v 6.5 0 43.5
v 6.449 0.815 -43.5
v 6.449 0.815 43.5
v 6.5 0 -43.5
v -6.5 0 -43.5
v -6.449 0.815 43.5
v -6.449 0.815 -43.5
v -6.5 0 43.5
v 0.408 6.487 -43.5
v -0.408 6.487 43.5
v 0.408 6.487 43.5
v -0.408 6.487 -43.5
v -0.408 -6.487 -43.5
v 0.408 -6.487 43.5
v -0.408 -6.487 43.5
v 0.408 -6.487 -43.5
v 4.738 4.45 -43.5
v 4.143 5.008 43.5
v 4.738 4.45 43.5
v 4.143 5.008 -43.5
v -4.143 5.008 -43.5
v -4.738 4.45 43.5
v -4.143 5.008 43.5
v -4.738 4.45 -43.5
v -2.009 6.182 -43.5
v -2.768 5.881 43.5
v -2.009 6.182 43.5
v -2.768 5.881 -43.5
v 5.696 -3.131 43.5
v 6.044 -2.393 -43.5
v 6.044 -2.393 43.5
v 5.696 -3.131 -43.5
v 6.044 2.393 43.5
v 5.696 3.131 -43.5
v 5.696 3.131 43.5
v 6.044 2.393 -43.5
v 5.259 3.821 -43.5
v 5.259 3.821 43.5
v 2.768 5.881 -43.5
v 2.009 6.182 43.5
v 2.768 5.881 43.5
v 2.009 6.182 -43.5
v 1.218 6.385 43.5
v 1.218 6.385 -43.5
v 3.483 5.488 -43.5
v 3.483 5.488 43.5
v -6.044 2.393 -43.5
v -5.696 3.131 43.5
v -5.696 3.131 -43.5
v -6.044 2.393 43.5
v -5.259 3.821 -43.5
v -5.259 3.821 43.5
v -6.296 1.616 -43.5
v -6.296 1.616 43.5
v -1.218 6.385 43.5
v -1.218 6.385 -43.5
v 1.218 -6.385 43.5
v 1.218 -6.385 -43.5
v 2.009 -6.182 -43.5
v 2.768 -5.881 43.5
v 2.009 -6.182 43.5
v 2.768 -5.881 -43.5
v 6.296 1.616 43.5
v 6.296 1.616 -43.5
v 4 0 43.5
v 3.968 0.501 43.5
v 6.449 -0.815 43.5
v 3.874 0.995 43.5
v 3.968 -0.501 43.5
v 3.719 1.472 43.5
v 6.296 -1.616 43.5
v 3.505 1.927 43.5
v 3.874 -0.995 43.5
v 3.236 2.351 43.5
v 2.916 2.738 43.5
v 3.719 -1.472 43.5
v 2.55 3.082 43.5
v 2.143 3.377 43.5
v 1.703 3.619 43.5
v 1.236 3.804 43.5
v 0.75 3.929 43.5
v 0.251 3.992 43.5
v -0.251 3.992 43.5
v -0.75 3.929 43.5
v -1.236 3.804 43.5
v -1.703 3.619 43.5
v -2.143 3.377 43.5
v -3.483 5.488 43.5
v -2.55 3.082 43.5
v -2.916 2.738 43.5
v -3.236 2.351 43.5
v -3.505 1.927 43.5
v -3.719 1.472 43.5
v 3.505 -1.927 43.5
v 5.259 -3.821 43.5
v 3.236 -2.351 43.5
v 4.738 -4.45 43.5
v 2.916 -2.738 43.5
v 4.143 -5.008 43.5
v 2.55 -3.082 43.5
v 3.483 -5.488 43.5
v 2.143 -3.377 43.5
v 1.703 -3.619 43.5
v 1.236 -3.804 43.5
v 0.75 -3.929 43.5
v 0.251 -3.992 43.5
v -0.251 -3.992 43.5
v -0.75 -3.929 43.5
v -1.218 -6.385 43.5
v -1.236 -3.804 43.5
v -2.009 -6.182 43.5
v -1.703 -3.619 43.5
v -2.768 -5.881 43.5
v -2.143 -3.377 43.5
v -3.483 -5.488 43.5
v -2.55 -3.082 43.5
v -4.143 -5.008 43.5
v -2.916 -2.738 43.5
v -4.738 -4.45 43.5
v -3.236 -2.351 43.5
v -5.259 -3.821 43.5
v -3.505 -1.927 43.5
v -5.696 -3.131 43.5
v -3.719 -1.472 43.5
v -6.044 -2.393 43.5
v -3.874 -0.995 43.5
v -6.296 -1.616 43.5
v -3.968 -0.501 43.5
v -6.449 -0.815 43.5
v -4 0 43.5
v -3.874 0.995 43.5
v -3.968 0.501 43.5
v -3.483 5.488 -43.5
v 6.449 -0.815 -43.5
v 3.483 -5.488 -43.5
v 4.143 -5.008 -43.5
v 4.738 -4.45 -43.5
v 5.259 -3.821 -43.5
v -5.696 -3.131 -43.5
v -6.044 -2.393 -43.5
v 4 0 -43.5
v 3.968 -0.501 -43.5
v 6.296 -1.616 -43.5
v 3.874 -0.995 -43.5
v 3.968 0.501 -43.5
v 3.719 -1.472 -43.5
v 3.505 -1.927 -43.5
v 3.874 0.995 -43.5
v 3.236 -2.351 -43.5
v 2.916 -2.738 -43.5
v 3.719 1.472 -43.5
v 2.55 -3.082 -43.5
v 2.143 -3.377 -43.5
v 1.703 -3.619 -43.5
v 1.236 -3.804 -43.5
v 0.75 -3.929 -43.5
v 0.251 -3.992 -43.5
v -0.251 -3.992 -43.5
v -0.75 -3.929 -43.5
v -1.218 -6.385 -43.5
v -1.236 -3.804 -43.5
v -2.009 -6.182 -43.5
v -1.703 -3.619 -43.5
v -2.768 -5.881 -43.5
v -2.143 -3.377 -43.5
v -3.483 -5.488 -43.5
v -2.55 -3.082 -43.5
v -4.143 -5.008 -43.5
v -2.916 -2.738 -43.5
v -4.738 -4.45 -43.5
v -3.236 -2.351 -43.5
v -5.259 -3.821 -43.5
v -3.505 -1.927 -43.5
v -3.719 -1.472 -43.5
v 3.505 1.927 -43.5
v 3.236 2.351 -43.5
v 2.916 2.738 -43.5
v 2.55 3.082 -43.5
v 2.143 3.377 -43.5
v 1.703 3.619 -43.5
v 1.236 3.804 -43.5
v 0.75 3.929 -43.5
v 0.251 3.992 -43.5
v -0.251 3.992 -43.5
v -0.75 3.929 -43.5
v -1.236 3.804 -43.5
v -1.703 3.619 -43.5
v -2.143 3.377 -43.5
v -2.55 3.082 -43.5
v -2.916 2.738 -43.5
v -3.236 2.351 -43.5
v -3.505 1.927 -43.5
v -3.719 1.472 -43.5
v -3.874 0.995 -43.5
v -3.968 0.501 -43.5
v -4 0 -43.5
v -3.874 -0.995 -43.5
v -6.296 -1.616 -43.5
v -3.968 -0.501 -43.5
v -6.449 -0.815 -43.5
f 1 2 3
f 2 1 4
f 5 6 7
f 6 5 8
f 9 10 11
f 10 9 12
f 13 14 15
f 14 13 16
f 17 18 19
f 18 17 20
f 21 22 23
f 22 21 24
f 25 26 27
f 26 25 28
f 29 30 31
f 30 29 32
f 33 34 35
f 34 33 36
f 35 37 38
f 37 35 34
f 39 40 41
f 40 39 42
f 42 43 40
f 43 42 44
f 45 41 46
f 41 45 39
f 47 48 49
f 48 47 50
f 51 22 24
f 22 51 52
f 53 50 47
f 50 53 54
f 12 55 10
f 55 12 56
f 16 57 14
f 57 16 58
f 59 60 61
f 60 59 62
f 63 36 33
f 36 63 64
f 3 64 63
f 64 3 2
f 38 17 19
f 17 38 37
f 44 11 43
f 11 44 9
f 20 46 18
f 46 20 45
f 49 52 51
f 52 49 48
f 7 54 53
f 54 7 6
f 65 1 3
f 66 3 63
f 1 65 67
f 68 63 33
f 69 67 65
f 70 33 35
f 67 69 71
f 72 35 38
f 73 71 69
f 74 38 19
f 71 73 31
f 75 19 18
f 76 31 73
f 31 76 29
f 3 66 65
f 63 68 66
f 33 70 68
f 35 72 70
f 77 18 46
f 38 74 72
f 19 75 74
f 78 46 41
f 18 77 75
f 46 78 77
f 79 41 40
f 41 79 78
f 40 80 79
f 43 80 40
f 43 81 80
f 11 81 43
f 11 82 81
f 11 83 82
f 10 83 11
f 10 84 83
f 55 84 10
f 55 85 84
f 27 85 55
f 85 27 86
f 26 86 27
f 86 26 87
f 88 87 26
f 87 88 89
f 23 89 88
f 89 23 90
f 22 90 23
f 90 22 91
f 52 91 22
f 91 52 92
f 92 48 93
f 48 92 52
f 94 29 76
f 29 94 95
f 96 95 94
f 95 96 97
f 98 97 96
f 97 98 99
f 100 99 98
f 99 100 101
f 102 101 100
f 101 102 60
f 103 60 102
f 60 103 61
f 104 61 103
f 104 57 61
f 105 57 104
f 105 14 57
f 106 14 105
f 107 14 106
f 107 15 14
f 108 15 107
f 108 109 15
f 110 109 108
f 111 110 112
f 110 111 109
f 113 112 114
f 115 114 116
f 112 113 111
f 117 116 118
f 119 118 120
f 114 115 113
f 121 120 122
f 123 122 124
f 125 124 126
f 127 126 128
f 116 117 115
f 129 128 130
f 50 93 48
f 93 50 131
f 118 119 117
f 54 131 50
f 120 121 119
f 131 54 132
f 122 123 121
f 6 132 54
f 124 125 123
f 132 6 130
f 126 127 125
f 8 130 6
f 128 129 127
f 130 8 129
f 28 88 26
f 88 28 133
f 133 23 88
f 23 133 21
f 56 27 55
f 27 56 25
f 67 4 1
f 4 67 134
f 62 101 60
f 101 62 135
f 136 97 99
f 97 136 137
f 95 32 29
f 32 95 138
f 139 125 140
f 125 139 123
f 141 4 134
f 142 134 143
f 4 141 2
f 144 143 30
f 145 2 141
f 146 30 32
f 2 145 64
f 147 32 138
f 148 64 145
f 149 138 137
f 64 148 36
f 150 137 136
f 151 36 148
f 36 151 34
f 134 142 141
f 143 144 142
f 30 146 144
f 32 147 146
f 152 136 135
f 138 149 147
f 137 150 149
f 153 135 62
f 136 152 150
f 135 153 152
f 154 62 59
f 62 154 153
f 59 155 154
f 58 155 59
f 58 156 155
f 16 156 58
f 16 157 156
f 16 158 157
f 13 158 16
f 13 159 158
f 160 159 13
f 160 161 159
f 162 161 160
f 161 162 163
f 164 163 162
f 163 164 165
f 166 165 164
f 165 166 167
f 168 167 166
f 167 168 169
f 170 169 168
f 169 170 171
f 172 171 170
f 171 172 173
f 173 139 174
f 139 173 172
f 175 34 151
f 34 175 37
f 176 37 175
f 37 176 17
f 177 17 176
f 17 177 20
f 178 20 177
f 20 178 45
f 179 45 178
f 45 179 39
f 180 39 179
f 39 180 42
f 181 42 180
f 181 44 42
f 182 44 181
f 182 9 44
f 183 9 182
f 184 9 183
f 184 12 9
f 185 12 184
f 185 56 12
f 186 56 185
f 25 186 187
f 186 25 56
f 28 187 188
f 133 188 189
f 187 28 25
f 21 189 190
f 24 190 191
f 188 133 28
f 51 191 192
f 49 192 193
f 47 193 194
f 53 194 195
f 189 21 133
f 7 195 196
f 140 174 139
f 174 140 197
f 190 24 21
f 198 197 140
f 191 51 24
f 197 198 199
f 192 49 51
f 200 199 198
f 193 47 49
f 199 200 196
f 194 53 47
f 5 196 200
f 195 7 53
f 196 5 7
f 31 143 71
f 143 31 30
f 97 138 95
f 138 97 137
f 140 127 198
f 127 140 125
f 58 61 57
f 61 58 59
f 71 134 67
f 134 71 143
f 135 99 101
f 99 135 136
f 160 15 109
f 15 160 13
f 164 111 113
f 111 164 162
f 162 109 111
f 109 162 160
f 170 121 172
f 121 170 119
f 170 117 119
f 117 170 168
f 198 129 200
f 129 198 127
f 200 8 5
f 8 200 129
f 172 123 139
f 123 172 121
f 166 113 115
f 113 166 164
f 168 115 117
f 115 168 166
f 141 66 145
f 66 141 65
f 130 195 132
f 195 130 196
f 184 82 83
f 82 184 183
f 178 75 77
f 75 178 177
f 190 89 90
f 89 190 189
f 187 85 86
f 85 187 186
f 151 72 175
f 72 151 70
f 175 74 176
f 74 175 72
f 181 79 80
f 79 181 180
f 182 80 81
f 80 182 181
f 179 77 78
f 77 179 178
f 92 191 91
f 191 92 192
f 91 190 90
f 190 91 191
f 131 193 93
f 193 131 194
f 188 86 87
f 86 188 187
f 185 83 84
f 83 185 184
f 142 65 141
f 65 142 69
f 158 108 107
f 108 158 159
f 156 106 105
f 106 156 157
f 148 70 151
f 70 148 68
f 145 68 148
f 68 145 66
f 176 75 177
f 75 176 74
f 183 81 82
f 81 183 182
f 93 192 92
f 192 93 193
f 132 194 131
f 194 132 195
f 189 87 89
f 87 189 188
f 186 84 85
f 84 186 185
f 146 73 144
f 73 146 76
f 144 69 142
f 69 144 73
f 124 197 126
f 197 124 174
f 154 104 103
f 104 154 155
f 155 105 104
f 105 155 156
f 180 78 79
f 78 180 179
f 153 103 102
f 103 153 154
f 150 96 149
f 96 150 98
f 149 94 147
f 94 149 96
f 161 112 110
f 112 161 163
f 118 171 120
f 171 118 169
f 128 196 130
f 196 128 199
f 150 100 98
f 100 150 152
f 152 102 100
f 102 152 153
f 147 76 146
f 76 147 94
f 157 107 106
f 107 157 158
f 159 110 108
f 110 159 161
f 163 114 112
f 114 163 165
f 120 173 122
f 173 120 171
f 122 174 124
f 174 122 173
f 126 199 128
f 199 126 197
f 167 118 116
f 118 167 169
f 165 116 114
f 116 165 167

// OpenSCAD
$fn = 50;


difference() {
	union() {
		translate(v = [0, 0, -43.5000000000]) {
			cylinder(h = 87, r = 6.5000000000);
		}
	}
	union() {
		translate(v = [0, 0, -100.0000000000]) {
			cylinder(h = 200, r = 4);
		}
	}
}
